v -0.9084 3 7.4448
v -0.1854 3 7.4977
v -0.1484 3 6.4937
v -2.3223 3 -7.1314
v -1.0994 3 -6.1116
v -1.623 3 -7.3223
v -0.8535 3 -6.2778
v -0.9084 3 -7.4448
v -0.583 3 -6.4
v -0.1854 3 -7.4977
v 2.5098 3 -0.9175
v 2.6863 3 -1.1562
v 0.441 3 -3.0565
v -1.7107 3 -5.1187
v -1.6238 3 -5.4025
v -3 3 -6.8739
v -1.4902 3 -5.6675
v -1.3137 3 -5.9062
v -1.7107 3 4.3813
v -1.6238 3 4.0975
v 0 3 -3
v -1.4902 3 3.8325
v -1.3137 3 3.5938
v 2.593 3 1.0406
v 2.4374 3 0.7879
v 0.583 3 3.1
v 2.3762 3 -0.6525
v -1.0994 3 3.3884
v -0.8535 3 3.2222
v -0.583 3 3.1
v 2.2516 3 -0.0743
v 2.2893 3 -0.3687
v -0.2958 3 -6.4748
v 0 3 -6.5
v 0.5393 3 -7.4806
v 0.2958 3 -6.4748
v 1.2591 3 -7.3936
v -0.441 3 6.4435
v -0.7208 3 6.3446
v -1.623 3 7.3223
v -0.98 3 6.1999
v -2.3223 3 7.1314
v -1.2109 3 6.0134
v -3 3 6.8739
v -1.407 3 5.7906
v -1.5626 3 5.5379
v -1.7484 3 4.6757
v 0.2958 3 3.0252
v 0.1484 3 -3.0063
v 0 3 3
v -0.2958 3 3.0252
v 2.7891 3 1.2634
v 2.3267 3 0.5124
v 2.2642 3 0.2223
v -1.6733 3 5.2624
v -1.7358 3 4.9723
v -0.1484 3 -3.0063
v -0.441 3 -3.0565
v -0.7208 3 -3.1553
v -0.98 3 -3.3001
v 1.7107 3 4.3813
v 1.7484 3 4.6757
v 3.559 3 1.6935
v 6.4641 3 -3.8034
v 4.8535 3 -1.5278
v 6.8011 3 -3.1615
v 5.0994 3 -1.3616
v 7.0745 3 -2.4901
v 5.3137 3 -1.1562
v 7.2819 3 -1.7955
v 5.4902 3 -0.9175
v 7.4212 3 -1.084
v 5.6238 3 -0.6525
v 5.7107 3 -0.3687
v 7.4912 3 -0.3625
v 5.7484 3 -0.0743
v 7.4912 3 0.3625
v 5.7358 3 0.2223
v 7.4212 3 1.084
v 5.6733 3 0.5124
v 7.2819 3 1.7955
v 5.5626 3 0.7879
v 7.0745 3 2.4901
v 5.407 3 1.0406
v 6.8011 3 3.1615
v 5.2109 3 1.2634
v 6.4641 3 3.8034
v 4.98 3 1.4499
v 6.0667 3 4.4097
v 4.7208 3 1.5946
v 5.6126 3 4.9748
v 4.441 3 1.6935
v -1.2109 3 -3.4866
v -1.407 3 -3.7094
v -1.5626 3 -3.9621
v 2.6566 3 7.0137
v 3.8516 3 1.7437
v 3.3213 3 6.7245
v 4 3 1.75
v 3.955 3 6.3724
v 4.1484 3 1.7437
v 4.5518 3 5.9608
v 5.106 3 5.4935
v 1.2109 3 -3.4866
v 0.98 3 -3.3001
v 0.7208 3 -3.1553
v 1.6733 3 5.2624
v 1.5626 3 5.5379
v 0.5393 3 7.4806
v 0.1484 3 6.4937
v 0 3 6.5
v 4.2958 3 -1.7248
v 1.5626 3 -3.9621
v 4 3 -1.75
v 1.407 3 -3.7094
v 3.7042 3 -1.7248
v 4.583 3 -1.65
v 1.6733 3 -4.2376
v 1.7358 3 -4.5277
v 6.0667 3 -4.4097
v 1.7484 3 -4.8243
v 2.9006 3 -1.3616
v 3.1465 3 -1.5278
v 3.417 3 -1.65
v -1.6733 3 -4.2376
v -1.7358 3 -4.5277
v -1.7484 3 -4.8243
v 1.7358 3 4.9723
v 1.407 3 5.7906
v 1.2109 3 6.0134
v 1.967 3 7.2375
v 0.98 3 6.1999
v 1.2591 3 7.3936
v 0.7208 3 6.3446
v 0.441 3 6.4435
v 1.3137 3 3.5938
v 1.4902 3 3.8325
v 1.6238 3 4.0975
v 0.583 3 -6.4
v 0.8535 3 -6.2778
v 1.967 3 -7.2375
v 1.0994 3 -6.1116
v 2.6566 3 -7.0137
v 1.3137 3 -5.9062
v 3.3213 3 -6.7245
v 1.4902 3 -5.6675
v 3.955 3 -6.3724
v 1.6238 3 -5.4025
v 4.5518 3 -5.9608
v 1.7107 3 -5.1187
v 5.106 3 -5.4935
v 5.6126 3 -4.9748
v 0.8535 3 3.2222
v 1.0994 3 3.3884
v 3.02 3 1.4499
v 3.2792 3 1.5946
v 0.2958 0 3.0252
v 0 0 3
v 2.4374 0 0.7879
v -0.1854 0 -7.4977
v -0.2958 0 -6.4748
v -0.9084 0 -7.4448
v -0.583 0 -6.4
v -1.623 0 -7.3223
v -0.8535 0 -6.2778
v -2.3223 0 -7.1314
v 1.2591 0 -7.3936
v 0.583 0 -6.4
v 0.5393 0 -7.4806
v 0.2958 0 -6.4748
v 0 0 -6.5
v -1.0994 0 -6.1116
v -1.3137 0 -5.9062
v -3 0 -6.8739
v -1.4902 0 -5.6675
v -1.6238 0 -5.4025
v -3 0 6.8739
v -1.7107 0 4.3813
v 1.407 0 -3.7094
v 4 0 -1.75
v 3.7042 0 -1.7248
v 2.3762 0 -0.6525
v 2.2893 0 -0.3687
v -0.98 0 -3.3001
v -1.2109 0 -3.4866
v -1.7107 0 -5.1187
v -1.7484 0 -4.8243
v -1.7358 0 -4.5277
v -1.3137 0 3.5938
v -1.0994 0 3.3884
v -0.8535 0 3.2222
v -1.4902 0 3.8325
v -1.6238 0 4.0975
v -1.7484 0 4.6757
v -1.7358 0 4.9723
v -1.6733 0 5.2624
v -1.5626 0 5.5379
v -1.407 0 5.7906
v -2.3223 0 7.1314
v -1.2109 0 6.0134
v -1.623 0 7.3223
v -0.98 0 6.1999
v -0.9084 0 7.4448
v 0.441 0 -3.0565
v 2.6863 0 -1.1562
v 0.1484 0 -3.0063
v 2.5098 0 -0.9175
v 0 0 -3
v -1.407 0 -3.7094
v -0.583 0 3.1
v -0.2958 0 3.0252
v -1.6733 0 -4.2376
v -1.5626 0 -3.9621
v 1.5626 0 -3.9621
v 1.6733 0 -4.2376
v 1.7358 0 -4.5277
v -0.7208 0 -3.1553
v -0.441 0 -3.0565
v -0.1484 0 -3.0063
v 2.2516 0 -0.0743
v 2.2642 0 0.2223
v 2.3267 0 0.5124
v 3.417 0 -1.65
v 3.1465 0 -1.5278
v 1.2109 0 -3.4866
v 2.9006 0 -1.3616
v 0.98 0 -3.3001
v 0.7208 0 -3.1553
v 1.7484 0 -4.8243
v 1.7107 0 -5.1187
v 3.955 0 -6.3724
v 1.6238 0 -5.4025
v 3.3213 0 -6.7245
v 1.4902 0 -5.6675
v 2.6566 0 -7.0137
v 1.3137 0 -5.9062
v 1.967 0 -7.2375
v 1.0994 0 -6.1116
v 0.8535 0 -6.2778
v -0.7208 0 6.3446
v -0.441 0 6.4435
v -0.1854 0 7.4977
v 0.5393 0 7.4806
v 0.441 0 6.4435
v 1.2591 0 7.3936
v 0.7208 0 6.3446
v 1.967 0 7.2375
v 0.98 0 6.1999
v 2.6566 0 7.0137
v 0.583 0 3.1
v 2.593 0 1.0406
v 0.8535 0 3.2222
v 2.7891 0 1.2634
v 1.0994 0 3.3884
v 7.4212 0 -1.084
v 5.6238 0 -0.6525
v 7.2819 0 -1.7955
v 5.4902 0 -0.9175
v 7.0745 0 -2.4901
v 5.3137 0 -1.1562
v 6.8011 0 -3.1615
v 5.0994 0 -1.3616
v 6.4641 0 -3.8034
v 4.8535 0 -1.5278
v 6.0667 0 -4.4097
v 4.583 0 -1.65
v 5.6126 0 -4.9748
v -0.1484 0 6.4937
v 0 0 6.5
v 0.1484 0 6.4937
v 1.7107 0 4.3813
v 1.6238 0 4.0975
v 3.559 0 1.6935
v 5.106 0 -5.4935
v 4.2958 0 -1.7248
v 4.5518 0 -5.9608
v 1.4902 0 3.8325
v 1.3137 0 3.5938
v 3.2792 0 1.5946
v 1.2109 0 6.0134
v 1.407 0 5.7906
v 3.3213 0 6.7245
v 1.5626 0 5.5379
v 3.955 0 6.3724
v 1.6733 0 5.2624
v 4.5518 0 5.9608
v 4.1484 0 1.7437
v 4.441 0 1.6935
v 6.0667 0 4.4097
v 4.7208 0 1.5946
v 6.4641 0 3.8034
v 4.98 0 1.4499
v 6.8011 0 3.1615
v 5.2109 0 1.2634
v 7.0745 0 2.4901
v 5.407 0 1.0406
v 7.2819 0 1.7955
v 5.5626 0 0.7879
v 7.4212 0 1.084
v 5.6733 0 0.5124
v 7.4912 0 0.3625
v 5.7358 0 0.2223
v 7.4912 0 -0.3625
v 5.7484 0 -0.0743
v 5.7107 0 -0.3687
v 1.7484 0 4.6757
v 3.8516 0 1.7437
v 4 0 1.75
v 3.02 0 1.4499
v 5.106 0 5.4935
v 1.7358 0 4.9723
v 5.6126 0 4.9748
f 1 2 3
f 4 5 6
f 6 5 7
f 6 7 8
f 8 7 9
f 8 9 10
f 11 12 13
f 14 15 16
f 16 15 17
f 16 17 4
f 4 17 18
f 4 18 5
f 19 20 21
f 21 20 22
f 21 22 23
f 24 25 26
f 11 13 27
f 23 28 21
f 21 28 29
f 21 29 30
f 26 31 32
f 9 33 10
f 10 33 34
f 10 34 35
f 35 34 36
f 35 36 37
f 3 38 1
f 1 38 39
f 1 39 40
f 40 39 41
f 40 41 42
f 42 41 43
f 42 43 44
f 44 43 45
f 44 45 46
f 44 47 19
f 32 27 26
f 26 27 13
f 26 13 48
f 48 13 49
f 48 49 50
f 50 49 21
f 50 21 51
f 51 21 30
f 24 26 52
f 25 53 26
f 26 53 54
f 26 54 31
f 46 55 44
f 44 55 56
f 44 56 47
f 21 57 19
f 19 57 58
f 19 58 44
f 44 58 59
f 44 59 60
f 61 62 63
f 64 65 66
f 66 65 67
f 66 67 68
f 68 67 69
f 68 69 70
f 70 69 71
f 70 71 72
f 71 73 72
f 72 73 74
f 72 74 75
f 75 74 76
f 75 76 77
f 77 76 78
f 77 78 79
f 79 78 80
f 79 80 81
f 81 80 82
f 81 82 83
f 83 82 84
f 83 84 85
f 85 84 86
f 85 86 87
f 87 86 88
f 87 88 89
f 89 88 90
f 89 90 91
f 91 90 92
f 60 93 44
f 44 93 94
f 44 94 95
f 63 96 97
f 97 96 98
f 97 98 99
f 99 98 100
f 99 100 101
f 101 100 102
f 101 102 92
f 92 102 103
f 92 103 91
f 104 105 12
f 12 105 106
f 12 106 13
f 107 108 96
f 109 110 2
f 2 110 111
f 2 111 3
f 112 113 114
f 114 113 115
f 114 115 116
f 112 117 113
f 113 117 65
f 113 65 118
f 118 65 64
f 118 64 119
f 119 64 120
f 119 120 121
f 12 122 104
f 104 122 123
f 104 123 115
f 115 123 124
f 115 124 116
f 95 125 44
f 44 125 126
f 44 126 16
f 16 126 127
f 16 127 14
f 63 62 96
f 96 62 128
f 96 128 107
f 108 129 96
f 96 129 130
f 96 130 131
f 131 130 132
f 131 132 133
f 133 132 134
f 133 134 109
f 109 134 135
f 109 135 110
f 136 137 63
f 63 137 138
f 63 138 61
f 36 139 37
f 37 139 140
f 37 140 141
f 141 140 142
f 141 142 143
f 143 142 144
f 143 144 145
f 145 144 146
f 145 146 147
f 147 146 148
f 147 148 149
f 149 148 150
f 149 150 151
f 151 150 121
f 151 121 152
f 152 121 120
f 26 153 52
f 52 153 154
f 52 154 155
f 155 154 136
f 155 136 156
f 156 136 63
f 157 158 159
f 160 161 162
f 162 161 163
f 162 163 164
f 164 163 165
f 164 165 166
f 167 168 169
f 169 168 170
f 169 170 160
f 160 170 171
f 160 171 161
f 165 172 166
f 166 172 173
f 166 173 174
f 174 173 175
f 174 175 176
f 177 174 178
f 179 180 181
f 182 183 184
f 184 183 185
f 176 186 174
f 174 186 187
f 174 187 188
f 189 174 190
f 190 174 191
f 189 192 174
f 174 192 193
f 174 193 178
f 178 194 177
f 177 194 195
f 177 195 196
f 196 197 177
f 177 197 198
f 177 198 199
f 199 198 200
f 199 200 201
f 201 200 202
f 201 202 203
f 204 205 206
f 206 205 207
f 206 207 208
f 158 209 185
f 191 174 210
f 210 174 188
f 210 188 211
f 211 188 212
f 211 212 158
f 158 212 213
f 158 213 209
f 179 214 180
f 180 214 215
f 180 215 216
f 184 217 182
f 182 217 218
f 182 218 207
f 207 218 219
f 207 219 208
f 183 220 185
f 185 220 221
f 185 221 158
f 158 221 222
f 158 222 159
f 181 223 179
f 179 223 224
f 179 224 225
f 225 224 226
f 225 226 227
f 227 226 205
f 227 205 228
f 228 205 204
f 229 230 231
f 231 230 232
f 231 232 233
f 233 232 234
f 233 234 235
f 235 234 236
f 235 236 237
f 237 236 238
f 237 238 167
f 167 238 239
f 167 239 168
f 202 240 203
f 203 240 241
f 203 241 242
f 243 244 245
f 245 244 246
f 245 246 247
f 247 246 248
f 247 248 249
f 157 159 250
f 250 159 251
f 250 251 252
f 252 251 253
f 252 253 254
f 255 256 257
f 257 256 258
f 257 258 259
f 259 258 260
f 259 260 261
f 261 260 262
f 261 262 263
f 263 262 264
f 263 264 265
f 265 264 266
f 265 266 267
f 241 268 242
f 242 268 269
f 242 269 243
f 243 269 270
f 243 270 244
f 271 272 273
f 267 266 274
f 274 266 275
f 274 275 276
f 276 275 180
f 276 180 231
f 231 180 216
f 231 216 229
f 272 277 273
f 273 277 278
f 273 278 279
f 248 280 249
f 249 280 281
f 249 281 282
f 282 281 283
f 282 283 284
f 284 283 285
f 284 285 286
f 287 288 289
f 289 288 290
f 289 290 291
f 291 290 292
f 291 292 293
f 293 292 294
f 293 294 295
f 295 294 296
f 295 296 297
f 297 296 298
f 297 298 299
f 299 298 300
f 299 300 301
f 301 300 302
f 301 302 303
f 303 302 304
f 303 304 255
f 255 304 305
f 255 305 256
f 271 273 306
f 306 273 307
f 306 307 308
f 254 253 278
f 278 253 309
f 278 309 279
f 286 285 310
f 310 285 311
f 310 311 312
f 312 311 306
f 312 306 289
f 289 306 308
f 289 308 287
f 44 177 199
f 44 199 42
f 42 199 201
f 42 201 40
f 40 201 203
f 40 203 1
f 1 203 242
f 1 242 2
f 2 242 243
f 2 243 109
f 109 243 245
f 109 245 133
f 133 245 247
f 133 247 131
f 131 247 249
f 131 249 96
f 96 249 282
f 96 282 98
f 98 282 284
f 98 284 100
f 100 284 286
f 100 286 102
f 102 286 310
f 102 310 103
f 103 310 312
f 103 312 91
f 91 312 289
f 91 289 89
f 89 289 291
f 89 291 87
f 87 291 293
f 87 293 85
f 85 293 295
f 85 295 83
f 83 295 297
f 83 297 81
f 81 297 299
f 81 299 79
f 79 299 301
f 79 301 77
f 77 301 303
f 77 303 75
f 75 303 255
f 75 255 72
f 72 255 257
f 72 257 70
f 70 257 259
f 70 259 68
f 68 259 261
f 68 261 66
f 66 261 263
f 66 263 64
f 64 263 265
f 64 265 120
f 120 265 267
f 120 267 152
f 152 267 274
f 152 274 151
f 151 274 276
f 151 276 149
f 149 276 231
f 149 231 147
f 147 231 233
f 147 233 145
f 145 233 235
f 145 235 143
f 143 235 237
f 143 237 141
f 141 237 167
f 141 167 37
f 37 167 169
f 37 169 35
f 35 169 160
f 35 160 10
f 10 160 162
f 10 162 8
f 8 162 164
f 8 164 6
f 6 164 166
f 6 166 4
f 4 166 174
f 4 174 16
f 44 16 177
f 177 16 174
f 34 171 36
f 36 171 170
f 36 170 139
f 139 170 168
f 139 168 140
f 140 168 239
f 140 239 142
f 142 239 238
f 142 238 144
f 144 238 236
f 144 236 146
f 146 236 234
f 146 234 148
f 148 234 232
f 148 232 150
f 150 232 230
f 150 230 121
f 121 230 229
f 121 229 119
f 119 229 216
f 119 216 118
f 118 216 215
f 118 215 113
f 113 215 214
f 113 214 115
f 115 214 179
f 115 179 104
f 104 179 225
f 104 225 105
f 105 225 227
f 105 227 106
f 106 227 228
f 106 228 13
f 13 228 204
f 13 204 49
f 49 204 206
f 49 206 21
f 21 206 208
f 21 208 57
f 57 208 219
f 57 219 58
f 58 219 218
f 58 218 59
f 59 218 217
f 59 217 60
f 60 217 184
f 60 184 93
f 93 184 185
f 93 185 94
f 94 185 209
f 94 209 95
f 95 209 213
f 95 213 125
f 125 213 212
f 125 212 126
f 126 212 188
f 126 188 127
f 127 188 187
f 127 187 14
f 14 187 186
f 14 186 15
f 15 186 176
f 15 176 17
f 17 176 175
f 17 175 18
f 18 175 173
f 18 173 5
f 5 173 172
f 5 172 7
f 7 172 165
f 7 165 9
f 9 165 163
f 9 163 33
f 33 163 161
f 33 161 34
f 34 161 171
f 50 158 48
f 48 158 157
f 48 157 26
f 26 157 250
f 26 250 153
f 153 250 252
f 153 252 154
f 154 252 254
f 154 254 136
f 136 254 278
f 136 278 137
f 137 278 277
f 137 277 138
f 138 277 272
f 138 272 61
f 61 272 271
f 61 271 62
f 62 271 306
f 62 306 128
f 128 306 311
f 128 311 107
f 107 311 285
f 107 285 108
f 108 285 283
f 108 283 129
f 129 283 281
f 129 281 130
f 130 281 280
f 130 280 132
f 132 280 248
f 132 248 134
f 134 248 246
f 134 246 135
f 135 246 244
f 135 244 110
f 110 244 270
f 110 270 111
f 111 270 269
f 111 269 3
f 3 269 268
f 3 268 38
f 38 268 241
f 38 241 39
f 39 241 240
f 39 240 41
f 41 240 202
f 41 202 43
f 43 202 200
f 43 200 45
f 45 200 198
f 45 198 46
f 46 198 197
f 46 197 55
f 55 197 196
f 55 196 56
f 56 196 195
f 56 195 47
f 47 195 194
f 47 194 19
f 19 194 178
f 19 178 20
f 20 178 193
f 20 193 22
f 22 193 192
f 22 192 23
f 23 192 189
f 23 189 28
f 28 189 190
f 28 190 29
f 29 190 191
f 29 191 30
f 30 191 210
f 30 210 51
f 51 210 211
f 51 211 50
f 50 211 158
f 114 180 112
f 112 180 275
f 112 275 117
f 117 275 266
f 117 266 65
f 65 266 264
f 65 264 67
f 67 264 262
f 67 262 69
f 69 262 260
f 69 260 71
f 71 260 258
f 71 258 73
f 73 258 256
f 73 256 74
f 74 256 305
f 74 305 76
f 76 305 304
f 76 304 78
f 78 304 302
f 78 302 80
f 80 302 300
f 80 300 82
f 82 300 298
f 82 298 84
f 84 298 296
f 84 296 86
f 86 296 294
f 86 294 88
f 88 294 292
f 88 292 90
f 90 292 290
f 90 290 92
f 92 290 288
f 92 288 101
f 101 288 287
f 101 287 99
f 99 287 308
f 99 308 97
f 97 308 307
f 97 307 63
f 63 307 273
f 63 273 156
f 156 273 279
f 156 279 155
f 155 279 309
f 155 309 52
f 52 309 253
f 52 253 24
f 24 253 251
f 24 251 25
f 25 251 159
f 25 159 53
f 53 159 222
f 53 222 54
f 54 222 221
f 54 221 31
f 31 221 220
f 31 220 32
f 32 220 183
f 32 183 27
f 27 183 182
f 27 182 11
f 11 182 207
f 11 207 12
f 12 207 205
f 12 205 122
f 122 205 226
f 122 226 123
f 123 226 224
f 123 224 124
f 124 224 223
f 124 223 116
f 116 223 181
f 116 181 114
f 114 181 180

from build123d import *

# Parameters (mm, degrees)
SKETCH1_R           = 1.75
BOSS_EXTRUDE1_DEPTH = 3


with BuildPart() as part:
    # Sketch1 → Boss-Extrude1 (new body)
    with BuildSketch(Plane(origin=(0, 0, 0), x_dir=(1, 0, 0), z_dir=(0, 1, 0))):
        with BuildLine():
            Line((-3, 6.873863542), (-3, -6.873863542))
            ThreePointArc((-3, -6.873863542), (7.5, 0), (-3, 6.873863542))
        make_face()
        with Locations((0, 4.75)):
            Circle(SKETCH1_R, mode=Mode.SUBTRACT)
        with Locations((0, -4.75)):
            Circle(SKETCH1_R, mode=Mode.SUBTRACT)
        with Locations((4, 0)):
            Circle(SKETCH1_R, mode=Mode.SUBTRACT)
    extrude(amount=BOSS_EXTRUDE1_DEPTH)


solid = part.part
